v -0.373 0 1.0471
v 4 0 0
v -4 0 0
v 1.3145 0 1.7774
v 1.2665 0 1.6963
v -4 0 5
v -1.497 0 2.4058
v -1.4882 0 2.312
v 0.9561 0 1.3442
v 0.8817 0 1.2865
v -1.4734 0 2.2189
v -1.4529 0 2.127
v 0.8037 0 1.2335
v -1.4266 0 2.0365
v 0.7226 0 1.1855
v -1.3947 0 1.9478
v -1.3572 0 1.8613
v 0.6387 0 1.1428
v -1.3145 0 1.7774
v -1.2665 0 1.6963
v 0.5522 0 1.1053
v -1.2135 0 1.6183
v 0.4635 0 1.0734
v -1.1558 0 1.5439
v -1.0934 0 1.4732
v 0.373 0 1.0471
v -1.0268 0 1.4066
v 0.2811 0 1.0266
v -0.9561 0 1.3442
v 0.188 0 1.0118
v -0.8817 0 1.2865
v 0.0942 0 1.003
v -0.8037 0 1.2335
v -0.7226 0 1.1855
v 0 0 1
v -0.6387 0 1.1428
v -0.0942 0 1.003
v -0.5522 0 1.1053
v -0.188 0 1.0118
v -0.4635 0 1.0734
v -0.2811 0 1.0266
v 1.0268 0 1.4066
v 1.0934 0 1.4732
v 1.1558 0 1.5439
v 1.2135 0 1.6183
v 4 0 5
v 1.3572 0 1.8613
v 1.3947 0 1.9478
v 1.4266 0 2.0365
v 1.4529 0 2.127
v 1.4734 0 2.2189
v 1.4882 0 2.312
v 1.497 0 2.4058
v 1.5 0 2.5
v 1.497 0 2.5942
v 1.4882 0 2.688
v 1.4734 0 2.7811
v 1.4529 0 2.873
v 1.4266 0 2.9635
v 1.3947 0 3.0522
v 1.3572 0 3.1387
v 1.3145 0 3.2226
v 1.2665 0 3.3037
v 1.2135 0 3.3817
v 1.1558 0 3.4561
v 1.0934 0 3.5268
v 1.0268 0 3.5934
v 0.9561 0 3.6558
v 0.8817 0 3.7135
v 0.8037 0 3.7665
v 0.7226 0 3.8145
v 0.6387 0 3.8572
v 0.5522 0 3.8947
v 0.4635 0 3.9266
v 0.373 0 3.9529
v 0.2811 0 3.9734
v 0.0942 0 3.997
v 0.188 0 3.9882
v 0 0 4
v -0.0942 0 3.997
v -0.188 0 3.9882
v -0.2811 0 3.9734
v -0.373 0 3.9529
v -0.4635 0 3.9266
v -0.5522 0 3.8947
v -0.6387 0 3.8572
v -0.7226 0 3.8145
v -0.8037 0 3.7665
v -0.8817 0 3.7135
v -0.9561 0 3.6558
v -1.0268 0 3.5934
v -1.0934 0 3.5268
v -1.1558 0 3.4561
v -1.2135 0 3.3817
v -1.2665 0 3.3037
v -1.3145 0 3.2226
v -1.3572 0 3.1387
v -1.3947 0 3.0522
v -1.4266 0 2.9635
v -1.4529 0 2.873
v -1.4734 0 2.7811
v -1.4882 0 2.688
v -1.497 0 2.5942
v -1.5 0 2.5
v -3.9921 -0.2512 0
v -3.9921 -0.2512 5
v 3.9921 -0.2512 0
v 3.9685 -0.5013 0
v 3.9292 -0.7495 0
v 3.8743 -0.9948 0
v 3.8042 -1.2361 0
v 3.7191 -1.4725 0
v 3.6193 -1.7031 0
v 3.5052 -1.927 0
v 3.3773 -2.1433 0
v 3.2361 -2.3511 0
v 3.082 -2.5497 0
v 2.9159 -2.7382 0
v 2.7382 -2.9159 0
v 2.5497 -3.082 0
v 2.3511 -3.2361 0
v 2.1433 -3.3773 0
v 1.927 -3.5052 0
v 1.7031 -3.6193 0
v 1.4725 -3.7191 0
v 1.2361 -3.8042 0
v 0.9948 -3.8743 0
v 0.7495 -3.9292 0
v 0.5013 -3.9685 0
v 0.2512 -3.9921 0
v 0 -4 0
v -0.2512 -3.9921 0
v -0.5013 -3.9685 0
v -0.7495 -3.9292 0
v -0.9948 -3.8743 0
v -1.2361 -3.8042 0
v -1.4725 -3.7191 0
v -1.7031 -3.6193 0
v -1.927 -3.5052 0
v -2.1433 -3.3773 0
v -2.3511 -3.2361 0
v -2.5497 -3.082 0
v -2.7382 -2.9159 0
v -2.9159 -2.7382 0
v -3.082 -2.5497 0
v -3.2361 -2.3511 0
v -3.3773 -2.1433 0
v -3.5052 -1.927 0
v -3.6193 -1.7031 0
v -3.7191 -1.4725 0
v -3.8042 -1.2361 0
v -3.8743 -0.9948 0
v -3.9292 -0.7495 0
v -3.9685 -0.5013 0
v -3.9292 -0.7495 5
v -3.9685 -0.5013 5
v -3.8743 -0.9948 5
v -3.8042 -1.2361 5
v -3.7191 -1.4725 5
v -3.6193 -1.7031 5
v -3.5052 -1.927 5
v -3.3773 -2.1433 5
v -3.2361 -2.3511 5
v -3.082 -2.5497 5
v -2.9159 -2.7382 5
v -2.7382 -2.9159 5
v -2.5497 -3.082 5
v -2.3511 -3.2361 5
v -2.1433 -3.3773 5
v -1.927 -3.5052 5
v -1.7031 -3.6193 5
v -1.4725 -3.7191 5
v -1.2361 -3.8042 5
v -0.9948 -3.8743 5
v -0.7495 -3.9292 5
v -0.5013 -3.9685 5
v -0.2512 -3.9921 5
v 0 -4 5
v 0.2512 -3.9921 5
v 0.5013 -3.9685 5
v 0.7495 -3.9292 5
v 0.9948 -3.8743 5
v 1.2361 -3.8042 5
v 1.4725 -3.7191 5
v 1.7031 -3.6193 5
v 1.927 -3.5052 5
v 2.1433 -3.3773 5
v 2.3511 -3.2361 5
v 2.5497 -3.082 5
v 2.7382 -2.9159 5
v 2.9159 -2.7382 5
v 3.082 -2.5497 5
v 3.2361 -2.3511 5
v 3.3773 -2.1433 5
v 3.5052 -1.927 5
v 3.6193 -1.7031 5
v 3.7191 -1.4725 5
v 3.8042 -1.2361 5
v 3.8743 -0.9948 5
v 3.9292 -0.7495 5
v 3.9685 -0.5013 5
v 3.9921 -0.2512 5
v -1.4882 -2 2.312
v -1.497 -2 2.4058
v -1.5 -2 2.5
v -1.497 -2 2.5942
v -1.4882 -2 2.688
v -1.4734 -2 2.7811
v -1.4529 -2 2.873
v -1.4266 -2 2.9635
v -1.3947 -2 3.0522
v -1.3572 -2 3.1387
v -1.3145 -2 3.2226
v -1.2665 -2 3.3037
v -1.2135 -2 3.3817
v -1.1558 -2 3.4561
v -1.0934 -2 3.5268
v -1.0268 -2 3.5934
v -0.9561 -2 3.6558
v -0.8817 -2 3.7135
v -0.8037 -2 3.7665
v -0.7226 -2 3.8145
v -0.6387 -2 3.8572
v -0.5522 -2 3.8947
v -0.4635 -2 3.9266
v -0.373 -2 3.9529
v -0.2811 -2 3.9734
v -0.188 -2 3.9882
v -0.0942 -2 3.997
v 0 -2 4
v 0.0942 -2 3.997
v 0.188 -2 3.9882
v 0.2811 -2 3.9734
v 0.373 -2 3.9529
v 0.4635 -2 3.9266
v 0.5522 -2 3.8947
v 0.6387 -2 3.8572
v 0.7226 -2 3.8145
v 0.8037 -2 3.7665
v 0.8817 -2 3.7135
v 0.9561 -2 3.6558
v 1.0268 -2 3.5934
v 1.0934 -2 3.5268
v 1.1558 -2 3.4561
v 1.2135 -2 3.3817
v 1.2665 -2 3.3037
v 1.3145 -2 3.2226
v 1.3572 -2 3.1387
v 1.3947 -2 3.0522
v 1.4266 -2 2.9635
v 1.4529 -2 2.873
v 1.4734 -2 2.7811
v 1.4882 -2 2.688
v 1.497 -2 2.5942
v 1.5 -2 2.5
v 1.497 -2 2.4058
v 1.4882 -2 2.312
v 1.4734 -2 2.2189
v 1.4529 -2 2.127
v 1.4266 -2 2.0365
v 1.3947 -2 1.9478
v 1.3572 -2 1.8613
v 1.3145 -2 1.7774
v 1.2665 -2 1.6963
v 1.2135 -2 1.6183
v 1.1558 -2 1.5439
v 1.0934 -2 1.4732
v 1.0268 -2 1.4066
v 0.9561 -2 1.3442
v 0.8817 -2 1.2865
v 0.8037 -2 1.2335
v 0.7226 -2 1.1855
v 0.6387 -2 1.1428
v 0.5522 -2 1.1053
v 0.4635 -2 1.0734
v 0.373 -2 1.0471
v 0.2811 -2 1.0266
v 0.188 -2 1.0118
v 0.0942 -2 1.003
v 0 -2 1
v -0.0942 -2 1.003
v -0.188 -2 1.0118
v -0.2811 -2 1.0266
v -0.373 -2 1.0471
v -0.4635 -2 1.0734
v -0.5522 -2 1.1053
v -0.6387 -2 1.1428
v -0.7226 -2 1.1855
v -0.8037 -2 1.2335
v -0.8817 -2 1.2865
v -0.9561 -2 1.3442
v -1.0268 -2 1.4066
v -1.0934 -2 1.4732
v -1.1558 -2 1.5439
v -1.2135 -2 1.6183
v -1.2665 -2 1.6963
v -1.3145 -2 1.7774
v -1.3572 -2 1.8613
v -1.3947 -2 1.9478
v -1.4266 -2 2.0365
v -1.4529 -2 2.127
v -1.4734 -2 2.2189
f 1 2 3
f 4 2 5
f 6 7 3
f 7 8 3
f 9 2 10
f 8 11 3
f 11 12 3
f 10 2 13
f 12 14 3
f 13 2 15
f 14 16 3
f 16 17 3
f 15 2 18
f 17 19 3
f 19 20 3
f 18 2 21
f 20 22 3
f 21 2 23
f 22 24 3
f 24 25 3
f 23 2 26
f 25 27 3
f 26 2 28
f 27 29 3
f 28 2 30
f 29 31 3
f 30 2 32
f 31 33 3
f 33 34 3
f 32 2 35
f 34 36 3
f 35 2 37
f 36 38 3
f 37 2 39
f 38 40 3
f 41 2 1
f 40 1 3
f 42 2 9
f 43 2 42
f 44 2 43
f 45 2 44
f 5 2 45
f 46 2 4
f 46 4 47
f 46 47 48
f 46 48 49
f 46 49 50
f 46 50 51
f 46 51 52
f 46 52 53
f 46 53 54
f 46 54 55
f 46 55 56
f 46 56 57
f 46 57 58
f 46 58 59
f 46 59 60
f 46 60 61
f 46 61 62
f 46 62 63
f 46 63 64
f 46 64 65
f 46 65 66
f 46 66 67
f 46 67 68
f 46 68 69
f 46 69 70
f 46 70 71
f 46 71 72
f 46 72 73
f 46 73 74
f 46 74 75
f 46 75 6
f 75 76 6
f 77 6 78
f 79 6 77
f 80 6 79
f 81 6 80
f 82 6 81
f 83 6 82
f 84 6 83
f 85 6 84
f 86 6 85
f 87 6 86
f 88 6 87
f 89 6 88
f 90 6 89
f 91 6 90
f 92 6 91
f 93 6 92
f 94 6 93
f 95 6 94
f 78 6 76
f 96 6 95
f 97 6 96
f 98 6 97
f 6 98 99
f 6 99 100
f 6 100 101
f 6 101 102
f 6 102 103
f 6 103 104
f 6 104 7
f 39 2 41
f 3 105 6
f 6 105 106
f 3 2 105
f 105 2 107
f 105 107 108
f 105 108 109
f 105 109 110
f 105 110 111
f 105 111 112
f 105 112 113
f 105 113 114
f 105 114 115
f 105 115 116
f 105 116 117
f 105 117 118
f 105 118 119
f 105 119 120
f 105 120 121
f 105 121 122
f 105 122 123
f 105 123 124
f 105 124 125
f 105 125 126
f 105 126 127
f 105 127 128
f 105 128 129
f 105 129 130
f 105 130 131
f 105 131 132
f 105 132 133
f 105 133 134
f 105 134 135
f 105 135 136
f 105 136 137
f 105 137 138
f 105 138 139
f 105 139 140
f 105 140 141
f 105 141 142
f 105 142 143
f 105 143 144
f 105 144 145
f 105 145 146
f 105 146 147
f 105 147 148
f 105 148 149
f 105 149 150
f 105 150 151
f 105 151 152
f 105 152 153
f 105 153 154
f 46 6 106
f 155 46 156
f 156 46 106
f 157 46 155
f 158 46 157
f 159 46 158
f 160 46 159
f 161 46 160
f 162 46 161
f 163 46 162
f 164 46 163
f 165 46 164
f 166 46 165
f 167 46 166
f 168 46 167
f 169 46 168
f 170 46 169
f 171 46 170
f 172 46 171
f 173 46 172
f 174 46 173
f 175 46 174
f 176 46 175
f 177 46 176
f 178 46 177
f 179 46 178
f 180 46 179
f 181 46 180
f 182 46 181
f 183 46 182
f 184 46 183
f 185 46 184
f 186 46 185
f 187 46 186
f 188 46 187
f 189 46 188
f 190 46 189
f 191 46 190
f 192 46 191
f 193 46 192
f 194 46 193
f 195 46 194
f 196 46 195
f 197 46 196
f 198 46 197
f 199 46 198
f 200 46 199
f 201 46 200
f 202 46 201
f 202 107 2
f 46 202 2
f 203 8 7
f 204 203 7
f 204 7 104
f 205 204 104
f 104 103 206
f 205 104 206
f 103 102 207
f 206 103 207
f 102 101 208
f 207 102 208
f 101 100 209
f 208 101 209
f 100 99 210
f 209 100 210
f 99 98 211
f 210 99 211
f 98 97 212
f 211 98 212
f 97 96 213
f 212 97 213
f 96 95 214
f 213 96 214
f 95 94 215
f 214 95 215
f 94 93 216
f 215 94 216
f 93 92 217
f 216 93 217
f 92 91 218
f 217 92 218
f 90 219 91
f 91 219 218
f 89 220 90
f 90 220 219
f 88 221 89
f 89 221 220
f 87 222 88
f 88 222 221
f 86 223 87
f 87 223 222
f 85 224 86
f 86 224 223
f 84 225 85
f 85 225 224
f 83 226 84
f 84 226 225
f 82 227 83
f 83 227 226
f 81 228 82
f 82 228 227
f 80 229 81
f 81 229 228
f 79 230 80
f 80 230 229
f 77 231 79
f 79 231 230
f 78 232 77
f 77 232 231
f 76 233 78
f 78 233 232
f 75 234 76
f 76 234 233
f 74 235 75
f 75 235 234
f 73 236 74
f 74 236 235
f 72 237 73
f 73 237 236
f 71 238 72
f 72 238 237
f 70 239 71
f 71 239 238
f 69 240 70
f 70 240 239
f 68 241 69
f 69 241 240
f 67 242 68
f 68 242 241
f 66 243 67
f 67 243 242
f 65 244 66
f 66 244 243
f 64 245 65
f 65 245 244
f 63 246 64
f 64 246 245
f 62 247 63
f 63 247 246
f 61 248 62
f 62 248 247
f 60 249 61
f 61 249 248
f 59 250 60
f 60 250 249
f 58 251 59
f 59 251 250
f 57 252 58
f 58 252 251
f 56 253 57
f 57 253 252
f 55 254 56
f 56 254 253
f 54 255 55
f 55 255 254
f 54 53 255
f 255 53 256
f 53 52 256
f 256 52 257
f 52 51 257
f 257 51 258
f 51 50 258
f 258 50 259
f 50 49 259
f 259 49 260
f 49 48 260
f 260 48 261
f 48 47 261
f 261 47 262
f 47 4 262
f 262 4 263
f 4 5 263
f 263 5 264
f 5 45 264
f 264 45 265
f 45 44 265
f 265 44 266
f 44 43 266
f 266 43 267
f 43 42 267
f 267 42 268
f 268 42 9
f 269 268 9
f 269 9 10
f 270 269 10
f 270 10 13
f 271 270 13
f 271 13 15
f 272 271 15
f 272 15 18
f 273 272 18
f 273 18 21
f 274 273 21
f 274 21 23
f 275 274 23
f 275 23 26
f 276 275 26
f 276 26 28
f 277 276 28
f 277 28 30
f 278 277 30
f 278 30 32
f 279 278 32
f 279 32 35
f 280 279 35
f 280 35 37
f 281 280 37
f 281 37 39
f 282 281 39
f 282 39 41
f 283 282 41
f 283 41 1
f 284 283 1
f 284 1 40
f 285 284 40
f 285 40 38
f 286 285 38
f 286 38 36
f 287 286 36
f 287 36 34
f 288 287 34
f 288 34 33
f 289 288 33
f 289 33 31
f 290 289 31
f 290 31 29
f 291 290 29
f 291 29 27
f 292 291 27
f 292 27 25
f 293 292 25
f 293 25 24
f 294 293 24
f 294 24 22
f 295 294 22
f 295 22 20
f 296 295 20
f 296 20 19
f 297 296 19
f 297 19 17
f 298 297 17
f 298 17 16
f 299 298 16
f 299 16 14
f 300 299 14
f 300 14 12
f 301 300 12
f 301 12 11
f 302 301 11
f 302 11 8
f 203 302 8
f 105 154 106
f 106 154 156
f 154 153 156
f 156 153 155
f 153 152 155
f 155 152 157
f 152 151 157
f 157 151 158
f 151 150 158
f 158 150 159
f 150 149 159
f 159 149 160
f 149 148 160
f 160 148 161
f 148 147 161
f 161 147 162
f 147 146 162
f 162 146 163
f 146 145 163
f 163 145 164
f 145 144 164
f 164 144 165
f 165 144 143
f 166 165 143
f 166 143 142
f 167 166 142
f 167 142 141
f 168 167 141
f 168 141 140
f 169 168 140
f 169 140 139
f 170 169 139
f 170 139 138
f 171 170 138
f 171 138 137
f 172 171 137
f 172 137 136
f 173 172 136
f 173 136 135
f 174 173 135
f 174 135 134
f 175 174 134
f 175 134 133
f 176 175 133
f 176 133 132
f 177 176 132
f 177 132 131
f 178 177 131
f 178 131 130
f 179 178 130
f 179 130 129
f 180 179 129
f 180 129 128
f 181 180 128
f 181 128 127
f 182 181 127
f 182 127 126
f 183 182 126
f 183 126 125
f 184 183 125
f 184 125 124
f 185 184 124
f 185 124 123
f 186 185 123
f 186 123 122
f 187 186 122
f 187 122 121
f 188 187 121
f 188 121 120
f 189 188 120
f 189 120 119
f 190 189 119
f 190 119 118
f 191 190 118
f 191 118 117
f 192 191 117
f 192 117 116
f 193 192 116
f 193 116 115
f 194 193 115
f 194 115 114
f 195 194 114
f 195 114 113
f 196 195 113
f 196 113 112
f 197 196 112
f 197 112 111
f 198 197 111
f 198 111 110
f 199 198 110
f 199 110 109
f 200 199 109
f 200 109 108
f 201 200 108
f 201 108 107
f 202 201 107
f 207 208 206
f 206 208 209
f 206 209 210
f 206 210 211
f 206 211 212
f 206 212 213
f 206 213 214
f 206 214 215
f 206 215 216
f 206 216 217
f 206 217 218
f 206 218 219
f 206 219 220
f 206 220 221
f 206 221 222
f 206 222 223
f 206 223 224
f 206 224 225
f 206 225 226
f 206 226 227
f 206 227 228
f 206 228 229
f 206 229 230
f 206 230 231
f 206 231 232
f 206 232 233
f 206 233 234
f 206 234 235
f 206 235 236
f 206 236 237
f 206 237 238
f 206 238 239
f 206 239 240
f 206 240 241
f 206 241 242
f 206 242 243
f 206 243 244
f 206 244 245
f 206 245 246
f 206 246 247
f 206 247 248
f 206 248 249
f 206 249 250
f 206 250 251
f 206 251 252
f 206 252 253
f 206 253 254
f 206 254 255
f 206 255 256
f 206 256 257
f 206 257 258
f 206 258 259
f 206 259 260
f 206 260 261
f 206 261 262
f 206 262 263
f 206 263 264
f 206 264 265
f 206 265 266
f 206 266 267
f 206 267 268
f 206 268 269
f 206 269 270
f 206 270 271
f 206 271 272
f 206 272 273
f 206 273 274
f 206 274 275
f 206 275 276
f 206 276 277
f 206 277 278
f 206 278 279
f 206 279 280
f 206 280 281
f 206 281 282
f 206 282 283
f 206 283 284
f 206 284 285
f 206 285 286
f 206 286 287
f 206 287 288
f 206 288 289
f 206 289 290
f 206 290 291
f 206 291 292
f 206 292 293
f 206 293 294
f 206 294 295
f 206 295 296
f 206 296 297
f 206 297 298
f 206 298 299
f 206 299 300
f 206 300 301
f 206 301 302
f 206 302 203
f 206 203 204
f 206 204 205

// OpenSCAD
difference()
{
	cylinder(h = 5, r = 8/2, $fn=100);

	translate([0, -2, 2.5])
		rotate([-90, 0, 0])
			cylinder(h = 5, r = 3/2, $fn=100);

	translate([-4, 0, 0])
		cube([8, 8, 5]);
}
